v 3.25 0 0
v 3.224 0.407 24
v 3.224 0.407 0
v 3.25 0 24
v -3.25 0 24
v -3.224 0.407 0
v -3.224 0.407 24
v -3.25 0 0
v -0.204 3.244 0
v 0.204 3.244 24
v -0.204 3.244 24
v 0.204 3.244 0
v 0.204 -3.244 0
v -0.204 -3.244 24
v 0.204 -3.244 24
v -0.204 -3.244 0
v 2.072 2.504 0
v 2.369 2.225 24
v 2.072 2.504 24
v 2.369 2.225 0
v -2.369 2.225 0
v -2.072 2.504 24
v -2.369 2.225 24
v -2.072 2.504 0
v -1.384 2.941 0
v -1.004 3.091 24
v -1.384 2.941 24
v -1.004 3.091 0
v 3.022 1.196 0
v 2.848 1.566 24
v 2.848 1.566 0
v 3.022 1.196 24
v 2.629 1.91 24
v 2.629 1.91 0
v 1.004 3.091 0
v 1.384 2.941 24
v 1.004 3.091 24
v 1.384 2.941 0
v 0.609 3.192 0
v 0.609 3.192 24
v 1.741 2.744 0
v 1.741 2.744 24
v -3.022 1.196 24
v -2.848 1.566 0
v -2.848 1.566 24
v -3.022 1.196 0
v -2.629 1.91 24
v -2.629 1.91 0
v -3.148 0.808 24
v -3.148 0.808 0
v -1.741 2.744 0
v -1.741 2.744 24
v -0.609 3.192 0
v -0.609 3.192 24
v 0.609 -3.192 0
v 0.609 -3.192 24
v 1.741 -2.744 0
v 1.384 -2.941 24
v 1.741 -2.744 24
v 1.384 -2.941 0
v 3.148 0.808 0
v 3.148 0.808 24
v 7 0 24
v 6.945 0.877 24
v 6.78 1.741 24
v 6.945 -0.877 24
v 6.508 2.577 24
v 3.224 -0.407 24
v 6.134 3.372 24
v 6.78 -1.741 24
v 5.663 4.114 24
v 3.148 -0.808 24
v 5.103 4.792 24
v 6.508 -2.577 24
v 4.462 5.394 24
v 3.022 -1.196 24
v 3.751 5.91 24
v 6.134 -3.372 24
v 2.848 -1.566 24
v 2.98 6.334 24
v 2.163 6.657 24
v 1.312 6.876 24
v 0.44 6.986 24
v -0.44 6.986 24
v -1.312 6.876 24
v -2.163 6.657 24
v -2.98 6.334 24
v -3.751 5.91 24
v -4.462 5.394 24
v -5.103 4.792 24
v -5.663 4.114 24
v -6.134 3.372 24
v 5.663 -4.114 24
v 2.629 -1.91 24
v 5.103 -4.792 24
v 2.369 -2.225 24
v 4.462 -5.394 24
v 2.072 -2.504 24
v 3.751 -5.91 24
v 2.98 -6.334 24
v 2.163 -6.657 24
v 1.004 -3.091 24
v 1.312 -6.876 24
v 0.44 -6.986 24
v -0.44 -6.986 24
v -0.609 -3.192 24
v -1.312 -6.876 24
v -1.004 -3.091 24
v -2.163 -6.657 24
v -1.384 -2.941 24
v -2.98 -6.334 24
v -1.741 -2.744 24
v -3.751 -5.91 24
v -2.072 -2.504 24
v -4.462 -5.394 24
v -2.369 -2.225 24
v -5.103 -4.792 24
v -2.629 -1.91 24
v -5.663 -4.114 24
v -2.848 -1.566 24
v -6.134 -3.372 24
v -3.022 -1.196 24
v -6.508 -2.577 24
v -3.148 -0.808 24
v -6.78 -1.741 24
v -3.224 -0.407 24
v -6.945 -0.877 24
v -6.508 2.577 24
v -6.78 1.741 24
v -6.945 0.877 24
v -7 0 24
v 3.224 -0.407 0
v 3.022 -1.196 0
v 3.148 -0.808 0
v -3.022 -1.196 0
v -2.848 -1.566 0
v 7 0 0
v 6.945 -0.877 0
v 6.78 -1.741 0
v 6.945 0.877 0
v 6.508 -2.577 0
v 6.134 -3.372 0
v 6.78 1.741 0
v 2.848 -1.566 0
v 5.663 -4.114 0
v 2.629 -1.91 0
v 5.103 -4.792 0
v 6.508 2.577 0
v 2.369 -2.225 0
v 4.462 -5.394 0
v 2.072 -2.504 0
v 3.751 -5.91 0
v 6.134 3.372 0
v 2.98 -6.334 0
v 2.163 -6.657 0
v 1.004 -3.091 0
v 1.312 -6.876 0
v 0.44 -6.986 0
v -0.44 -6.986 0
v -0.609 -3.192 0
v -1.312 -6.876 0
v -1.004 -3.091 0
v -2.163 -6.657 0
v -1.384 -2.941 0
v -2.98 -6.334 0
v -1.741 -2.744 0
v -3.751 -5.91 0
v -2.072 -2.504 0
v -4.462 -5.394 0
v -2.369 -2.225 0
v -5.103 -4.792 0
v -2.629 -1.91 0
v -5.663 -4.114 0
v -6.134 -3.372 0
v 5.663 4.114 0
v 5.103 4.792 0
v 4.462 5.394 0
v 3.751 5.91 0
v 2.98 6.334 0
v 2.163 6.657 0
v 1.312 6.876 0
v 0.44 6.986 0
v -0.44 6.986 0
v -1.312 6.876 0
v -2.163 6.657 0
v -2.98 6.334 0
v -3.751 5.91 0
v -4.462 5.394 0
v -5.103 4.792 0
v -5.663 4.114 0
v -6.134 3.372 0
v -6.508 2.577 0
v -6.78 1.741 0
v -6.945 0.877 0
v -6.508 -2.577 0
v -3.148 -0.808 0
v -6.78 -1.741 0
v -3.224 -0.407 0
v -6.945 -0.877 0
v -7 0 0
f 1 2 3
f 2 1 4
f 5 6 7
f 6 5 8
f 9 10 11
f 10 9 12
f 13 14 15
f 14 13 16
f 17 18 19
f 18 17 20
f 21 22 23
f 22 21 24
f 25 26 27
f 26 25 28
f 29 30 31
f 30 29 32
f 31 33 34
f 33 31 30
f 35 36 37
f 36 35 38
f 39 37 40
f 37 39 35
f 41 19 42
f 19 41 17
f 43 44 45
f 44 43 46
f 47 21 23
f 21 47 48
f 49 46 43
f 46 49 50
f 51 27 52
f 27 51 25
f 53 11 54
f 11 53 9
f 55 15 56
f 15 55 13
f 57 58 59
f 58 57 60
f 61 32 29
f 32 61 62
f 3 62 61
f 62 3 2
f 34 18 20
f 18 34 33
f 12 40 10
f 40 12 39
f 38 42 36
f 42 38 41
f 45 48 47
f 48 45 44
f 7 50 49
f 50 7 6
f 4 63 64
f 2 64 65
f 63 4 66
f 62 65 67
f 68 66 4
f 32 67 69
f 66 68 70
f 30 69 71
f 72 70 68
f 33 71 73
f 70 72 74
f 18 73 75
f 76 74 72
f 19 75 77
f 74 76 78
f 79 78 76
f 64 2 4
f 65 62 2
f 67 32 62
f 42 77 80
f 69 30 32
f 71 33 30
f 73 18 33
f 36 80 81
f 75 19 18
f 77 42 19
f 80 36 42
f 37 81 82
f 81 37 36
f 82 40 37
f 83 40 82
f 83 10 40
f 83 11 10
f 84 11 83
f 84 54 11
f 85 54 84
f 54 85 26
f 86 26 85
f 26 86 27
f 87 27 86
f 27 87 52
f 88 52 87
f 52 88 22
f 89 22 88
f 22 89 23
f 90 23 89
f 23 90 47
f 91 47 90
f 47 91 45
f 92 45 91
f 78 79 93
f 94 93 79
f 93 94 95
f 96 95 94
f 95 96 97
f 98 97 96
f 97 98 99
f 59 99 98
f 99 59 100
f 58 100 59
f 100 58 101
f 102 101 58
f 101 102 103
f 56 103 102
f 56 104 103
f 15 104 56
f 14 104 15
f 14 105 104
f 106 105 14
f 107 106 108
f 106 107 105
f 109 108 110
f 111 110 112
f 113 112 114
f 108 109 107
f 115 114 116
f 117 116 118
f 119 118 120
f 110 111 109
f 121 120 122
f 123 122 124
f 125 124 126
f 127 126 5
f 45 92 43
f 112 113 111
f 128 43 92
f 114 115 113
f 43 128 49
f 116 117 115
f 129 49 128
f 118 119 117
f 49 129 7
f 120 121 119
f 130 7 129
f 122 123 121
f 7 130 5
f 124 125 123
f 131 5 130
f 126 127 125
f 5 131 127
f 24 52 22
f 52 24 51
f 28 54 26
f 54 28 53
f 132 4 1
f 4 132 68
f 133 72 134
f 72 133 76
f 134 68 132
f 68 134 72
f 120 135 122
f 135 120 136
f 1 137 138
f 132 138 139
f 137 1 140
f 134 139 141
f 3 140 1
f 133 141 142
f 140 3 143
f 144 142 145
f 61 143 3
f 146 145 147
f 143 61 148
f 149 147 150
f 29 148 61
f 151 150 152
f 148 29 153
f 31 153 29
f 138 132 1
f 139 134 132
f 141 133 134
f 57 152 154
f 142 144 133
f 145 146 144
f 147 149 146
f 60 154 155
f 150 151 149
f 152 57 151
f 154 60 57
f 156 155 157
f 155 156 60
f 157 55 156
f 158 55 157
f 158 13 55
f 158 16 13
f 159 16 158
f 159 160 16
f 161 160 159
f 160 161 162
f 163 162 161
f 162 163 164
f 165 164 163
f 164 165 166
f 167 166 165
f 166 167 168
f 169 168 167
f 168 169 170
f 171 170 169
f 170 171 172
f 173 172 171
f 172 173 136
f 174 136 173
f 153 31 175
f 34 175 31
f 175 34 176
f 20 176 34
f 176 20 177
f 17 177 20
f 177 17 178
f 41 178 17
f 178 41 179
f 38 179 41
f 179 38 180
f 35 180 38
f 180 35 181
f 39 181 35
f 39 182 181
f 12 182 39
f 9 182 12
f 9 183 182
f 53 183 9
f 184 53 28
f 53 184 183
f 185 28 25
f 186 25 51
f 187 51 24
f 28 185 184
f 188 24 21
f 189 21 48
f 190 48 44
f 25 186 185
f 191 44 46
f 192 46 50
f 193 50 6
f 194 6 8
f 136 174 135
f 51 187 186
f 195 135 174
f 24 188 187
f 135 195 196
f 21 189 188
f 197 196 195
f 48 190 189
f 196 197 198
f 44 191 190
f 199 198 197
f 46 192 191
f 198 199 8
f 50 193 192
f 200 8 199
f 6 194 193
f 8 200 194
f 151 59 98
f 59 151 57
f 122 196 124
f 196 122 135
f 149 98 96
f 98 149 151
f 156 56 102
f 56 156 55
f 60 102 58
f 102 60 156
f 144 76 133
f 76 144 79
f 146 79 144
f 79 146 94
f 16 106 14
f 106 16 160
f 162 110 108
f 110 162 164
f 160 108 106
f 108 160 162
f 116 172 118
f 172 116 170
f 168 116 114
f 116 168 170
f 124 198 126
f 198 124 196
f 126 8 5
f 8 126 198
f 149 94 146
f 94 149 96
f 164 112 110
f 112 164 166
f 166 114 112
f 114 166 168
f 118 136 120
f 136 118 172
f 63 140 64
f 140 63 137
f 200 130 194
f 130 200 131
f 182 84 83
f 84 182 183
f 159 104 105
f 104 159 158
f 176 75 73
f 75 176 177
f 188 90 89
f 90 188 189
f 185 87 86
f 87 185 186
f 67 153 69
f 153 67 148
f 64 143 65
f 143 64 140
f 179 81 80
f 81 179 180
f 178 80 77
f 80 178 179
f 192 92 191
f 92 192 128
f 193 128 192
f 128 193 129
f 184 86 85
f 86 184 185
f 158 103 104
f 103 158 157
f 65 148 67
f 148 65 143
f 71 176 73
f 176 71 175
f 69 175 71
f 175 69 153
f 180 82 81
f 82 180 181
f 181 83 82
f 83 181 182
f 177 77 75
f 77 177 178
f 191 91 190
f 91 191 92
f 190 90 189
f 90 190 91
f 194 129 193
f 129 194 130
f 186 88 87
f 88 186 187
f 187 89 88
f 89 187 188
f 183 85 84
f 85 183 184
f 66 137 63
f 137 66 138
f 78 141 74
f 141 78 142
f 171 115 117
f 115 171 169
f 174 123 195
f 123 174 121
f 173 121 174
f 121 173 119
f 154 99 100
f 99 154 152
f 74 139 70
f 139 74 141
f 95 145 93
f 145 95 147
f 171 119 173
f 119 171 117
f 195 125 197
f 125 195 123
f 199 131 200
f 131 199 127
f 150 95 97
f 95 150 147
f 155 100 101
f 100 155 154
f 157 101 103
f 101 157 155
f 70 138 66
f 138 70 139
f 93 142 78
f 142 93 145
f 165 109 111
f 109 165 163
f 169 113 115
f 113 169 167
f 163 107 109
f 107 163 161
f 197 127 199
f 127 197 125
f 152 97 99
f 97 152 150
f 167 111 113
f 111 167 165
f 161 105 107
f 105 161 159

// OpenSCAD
$fn = 50;


difference() {
	union() {
		cylinder(h = 24, r = 7.0000000000);
	}
	union() {
		cylinder(h = 24, r = 3.2500000000);
		cylinder(h = 24, r = 1.8000000000);
		cylinder(h = 24, r = 1.8000000000);
		cylinder(h = 24, r = 1.8000000000);
	}
}
